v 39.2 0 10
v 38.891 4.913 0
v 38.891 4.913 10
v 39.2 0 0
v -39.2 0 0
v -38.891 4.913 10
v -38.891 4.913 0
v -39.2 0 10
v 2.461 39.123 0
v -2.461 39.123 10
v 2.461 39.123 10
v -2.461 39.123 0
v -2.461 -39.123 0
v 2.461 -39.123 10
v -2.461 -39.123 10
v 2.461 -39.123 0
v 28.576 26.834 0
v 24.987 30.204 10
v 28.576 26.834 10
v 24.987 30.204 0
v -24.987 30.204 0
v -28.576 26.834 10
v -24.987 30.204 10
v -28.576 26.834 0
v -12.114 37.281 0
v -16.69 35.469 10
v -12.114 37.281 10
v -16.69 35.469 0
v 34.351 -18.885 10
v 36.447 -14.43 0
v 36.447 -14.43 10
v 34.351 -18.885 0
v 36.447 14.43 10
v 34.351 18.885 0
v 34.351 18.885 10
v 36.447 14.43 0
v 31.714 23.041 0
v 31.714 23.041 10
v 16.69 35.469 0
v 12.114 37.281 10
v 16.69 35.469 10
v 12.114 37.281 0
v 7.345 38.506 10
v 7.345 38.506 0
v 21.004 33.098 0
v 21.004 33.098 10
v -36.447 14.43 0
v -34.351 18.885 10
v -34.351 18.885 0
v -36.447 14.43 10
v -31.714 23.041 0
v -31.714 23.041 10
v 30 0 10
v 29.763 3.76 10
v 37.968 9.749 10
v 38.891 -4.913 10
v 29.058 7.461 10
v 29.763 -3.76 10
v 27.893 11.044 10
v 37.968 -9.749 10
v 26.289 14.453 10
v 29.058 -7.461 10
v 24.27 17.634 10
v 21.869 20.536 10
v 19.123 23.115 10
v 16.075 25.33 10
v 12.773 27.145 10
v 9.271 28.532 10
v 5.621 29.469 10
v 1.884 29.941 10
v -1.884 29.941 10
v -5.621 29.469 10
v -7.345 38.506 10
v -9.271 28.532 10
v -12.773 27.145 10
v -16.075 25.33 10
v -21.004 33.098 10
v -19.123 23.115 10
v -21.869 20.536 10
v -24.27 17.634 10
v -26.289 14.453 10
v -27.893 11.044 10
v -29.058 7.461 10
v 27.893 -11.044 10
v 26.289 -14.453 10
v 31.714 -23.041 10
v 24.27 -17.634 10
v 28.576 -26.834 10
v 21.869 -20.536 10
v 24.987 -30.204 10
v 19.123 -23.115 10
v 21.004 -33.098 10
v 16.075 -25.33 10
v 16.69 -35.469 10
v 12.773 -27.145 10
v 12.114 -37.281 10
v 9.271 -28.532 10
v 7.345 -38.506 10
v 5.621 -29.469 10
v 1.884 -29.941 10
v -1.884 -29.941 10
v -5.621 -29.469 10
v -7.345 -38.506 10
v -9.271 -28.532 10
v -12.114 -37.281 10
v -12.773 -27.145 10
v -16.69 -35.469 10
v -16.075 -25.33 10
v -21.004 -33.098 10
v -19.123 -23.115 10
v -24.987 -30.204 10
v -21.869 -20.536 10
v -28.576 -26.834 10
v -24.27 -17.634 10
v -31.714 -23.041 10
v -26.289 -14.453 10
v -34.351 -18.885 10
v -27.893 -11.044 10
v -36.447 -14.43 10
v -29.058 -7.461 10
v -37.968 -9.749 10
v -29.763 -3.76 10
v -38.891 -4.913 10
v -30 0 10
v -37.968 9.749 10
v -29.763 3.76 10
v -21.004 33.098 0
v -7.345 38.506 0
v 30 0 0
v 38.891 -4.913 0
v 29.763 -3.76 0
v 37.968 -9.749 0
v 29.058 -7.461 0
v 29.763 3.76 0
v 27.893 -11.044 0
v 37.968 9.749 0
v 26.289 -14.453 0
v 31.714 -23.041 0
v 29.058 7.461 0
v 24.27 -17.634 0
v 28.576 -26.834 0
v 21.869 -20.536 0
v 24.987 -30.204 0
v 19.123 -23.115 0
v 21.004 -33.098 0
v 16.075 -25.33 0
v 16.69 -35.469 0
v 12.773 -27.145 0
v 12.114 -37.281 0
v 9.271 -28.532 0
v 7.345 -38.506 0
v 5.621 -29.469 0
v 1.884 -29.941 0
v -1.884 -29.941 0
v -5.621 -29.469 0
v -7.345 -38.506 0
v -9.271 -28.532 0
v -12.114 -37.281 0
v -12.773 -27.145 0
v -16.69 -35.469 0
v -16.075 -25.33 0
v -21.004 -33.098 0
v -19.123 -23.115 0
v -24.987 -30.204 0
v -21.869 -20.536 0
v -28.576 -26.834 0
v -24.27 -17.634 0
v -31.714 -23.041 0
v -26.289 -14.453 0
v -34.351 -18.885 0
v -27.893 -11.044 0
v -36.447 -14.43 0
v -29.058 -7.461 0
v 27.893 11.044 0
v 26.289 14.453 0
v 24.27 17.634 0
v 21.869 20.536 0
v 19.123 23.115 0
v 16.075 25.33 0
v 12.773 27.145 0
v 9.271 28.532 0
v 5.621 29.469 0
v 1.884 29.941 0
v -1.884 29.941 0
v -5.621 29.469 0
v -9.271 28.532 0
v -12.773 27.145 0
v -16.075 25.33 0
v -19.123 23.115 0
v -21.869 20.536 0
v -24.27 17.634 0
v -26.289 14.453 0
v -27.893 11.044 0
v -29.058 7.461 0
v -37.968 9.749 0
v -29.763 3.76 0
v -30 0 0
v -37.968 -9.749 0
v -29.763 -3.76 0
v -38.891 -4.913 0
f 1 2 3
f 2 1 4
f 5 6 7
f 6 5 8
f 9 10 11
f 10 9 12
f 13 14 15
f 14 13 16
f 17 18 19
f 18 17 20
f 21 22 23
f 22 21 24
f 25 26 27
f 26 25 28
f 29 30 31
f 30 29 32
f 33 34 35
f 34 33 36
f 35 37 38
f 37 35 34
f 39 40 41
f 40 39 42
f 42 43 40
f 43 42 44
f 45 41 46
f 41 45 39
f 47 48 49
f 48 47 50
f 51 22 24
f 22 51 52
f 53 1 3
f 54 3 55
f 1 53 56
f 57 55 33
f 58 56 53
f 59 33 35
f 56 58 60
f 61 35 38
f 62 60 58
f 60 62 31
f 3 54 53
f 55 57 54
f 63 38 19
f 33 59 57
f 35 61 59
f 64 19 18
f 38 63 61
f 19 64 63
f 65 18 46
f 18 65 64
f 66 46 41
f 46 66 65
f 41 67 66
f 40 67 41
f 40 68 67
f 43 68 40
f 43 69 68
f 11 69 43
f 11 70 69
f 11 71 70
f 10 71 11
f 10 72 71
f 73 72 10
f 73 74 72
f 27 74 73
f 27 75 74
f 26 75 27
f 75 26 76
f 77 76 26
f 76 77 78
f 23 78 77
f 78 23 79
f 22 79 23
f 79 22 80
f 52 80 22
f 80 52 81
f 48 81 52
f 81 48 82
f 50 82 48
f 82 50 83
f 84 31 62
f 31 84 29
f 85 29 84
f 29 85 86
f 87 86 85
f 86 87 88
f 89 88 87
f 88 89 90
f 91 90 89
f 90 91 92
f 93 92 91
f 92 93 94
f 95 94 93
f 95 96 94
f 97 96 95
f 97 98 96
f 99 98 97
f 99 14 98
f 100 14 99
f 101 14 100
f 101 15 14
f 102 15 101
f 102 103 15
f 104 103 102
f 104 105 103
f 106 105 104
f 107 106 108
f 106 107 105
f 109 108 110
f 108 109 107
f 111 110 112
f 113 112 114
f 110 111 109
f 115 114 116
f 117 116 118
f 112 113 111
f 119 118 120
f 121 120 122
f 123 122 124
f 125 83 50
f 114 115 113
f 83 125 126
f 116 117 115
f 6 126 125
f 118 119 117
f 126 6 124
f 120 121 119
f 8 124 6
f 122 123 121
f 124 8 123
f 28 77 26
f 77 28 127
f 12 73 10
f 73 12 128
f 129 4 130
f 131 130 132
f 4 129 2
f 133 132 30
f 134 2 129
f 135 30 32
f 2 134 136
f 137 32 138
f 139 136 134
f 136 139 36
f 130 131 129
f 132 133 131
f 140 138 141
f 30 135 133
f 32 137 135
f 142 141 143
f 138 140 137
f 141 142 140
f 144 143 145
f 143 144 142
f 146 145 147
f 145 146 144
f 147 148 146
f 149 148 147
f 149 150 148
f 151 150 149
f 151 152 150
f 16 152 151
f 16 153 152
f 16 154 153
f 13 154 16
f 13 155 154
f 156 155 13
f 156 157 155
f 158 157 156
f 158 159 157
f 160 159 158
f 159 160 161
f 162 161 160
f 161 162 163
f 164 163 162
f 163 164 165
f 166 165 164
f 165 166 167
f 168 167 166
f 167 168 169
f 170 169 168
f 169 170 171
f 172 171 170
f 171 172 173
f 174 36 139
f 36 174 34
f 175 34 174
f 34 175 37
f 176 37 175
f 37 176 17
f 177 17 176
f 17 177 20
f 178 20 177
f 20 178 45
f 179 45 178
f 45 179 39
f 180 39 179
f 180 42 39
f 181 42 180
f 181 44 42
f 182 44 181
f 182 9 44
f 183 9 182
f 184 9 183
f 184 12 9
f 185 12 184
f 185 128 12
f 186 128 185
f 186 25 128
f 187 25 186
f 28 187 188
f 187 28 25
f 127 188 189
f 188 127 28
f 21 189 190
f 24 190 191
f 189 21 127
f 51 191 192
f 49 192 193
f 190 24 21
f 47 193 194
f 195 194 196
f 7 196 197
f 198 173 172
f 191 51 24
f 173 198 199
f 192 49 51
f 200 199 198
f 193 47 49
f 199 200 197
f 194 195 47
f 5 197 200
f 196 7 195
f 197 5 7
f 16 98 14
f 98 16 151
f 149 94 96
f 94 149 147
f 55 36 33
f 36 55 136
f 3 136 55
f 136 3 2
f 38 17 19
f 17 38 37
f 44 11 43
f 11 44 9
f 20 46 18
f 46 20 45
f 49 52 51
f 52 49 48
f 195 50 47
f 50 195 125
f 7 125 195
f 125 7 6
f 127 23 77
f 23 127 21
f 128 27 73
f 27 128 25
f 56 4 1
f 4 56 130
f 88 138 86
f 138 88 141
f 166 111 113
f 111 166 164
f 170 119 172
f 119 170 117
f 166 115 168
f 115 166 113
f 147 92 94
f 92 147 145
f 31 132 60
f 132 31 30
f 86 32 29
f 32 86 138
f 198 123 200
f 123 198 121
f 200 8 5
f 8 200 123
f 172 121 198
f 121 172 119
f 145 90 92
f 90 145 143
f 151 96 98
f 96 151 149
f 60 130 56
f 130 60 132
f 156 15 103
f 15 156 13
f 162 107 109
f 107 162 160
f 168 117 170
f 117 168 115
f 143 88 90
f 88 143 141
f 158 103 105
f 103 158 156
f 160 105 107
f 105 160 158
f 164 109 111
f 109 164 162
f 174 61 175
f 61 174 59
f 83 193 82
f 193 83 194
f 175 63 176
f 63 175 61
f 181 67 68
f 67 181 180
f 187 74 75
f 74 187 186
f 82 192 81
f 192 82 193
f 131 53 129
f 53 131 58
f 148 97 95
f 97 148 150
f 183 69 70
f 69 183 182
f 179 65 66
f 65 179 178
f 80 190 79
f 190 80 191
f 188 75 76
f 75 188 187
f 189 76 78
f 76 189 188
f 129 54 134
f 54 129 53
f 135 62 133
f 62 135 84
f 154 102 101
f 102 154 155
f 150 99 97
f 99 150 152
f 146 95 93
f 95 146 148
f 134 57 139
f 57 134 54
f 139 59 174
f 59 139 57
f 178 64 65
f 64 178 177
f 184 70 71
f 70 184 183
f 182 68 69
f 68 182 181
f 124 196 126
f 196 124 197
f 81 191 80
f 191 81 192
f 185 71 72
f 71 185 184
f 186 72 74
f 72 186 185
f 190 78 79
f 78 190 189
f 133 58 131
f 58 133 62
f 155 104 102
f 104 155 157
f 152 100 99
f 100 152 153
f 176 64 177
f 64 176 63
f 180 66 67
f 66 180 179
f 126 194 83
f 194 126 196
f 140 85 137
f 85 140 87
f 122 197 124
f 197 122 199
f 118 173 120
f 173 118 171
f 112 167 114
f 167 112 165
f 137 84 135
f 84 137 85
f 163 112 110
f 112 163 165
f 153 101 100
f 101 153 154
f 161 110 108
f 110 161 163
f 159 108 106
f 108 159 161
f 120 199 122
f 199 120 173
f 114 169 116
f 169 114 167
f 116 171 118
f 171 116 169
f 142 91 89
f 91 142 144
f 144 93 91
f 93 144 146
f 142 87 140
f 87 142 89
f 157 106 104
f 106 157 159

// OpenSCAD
$fn = 50;


difference() {
	union() {
		translate(v = [0, 0, 0]) {
			rotate(a = [0, 0, 0]) {
				cylinder(h = 10, r = 39.2000000000);
			}
		}
	}
	union() {
		translate(v = [0, 0, 0]) {
			rotate(a = [0, 0, 0]) {
				cylinder(h = 10, r = 30.0000000000);
			}
		}
	}
}
